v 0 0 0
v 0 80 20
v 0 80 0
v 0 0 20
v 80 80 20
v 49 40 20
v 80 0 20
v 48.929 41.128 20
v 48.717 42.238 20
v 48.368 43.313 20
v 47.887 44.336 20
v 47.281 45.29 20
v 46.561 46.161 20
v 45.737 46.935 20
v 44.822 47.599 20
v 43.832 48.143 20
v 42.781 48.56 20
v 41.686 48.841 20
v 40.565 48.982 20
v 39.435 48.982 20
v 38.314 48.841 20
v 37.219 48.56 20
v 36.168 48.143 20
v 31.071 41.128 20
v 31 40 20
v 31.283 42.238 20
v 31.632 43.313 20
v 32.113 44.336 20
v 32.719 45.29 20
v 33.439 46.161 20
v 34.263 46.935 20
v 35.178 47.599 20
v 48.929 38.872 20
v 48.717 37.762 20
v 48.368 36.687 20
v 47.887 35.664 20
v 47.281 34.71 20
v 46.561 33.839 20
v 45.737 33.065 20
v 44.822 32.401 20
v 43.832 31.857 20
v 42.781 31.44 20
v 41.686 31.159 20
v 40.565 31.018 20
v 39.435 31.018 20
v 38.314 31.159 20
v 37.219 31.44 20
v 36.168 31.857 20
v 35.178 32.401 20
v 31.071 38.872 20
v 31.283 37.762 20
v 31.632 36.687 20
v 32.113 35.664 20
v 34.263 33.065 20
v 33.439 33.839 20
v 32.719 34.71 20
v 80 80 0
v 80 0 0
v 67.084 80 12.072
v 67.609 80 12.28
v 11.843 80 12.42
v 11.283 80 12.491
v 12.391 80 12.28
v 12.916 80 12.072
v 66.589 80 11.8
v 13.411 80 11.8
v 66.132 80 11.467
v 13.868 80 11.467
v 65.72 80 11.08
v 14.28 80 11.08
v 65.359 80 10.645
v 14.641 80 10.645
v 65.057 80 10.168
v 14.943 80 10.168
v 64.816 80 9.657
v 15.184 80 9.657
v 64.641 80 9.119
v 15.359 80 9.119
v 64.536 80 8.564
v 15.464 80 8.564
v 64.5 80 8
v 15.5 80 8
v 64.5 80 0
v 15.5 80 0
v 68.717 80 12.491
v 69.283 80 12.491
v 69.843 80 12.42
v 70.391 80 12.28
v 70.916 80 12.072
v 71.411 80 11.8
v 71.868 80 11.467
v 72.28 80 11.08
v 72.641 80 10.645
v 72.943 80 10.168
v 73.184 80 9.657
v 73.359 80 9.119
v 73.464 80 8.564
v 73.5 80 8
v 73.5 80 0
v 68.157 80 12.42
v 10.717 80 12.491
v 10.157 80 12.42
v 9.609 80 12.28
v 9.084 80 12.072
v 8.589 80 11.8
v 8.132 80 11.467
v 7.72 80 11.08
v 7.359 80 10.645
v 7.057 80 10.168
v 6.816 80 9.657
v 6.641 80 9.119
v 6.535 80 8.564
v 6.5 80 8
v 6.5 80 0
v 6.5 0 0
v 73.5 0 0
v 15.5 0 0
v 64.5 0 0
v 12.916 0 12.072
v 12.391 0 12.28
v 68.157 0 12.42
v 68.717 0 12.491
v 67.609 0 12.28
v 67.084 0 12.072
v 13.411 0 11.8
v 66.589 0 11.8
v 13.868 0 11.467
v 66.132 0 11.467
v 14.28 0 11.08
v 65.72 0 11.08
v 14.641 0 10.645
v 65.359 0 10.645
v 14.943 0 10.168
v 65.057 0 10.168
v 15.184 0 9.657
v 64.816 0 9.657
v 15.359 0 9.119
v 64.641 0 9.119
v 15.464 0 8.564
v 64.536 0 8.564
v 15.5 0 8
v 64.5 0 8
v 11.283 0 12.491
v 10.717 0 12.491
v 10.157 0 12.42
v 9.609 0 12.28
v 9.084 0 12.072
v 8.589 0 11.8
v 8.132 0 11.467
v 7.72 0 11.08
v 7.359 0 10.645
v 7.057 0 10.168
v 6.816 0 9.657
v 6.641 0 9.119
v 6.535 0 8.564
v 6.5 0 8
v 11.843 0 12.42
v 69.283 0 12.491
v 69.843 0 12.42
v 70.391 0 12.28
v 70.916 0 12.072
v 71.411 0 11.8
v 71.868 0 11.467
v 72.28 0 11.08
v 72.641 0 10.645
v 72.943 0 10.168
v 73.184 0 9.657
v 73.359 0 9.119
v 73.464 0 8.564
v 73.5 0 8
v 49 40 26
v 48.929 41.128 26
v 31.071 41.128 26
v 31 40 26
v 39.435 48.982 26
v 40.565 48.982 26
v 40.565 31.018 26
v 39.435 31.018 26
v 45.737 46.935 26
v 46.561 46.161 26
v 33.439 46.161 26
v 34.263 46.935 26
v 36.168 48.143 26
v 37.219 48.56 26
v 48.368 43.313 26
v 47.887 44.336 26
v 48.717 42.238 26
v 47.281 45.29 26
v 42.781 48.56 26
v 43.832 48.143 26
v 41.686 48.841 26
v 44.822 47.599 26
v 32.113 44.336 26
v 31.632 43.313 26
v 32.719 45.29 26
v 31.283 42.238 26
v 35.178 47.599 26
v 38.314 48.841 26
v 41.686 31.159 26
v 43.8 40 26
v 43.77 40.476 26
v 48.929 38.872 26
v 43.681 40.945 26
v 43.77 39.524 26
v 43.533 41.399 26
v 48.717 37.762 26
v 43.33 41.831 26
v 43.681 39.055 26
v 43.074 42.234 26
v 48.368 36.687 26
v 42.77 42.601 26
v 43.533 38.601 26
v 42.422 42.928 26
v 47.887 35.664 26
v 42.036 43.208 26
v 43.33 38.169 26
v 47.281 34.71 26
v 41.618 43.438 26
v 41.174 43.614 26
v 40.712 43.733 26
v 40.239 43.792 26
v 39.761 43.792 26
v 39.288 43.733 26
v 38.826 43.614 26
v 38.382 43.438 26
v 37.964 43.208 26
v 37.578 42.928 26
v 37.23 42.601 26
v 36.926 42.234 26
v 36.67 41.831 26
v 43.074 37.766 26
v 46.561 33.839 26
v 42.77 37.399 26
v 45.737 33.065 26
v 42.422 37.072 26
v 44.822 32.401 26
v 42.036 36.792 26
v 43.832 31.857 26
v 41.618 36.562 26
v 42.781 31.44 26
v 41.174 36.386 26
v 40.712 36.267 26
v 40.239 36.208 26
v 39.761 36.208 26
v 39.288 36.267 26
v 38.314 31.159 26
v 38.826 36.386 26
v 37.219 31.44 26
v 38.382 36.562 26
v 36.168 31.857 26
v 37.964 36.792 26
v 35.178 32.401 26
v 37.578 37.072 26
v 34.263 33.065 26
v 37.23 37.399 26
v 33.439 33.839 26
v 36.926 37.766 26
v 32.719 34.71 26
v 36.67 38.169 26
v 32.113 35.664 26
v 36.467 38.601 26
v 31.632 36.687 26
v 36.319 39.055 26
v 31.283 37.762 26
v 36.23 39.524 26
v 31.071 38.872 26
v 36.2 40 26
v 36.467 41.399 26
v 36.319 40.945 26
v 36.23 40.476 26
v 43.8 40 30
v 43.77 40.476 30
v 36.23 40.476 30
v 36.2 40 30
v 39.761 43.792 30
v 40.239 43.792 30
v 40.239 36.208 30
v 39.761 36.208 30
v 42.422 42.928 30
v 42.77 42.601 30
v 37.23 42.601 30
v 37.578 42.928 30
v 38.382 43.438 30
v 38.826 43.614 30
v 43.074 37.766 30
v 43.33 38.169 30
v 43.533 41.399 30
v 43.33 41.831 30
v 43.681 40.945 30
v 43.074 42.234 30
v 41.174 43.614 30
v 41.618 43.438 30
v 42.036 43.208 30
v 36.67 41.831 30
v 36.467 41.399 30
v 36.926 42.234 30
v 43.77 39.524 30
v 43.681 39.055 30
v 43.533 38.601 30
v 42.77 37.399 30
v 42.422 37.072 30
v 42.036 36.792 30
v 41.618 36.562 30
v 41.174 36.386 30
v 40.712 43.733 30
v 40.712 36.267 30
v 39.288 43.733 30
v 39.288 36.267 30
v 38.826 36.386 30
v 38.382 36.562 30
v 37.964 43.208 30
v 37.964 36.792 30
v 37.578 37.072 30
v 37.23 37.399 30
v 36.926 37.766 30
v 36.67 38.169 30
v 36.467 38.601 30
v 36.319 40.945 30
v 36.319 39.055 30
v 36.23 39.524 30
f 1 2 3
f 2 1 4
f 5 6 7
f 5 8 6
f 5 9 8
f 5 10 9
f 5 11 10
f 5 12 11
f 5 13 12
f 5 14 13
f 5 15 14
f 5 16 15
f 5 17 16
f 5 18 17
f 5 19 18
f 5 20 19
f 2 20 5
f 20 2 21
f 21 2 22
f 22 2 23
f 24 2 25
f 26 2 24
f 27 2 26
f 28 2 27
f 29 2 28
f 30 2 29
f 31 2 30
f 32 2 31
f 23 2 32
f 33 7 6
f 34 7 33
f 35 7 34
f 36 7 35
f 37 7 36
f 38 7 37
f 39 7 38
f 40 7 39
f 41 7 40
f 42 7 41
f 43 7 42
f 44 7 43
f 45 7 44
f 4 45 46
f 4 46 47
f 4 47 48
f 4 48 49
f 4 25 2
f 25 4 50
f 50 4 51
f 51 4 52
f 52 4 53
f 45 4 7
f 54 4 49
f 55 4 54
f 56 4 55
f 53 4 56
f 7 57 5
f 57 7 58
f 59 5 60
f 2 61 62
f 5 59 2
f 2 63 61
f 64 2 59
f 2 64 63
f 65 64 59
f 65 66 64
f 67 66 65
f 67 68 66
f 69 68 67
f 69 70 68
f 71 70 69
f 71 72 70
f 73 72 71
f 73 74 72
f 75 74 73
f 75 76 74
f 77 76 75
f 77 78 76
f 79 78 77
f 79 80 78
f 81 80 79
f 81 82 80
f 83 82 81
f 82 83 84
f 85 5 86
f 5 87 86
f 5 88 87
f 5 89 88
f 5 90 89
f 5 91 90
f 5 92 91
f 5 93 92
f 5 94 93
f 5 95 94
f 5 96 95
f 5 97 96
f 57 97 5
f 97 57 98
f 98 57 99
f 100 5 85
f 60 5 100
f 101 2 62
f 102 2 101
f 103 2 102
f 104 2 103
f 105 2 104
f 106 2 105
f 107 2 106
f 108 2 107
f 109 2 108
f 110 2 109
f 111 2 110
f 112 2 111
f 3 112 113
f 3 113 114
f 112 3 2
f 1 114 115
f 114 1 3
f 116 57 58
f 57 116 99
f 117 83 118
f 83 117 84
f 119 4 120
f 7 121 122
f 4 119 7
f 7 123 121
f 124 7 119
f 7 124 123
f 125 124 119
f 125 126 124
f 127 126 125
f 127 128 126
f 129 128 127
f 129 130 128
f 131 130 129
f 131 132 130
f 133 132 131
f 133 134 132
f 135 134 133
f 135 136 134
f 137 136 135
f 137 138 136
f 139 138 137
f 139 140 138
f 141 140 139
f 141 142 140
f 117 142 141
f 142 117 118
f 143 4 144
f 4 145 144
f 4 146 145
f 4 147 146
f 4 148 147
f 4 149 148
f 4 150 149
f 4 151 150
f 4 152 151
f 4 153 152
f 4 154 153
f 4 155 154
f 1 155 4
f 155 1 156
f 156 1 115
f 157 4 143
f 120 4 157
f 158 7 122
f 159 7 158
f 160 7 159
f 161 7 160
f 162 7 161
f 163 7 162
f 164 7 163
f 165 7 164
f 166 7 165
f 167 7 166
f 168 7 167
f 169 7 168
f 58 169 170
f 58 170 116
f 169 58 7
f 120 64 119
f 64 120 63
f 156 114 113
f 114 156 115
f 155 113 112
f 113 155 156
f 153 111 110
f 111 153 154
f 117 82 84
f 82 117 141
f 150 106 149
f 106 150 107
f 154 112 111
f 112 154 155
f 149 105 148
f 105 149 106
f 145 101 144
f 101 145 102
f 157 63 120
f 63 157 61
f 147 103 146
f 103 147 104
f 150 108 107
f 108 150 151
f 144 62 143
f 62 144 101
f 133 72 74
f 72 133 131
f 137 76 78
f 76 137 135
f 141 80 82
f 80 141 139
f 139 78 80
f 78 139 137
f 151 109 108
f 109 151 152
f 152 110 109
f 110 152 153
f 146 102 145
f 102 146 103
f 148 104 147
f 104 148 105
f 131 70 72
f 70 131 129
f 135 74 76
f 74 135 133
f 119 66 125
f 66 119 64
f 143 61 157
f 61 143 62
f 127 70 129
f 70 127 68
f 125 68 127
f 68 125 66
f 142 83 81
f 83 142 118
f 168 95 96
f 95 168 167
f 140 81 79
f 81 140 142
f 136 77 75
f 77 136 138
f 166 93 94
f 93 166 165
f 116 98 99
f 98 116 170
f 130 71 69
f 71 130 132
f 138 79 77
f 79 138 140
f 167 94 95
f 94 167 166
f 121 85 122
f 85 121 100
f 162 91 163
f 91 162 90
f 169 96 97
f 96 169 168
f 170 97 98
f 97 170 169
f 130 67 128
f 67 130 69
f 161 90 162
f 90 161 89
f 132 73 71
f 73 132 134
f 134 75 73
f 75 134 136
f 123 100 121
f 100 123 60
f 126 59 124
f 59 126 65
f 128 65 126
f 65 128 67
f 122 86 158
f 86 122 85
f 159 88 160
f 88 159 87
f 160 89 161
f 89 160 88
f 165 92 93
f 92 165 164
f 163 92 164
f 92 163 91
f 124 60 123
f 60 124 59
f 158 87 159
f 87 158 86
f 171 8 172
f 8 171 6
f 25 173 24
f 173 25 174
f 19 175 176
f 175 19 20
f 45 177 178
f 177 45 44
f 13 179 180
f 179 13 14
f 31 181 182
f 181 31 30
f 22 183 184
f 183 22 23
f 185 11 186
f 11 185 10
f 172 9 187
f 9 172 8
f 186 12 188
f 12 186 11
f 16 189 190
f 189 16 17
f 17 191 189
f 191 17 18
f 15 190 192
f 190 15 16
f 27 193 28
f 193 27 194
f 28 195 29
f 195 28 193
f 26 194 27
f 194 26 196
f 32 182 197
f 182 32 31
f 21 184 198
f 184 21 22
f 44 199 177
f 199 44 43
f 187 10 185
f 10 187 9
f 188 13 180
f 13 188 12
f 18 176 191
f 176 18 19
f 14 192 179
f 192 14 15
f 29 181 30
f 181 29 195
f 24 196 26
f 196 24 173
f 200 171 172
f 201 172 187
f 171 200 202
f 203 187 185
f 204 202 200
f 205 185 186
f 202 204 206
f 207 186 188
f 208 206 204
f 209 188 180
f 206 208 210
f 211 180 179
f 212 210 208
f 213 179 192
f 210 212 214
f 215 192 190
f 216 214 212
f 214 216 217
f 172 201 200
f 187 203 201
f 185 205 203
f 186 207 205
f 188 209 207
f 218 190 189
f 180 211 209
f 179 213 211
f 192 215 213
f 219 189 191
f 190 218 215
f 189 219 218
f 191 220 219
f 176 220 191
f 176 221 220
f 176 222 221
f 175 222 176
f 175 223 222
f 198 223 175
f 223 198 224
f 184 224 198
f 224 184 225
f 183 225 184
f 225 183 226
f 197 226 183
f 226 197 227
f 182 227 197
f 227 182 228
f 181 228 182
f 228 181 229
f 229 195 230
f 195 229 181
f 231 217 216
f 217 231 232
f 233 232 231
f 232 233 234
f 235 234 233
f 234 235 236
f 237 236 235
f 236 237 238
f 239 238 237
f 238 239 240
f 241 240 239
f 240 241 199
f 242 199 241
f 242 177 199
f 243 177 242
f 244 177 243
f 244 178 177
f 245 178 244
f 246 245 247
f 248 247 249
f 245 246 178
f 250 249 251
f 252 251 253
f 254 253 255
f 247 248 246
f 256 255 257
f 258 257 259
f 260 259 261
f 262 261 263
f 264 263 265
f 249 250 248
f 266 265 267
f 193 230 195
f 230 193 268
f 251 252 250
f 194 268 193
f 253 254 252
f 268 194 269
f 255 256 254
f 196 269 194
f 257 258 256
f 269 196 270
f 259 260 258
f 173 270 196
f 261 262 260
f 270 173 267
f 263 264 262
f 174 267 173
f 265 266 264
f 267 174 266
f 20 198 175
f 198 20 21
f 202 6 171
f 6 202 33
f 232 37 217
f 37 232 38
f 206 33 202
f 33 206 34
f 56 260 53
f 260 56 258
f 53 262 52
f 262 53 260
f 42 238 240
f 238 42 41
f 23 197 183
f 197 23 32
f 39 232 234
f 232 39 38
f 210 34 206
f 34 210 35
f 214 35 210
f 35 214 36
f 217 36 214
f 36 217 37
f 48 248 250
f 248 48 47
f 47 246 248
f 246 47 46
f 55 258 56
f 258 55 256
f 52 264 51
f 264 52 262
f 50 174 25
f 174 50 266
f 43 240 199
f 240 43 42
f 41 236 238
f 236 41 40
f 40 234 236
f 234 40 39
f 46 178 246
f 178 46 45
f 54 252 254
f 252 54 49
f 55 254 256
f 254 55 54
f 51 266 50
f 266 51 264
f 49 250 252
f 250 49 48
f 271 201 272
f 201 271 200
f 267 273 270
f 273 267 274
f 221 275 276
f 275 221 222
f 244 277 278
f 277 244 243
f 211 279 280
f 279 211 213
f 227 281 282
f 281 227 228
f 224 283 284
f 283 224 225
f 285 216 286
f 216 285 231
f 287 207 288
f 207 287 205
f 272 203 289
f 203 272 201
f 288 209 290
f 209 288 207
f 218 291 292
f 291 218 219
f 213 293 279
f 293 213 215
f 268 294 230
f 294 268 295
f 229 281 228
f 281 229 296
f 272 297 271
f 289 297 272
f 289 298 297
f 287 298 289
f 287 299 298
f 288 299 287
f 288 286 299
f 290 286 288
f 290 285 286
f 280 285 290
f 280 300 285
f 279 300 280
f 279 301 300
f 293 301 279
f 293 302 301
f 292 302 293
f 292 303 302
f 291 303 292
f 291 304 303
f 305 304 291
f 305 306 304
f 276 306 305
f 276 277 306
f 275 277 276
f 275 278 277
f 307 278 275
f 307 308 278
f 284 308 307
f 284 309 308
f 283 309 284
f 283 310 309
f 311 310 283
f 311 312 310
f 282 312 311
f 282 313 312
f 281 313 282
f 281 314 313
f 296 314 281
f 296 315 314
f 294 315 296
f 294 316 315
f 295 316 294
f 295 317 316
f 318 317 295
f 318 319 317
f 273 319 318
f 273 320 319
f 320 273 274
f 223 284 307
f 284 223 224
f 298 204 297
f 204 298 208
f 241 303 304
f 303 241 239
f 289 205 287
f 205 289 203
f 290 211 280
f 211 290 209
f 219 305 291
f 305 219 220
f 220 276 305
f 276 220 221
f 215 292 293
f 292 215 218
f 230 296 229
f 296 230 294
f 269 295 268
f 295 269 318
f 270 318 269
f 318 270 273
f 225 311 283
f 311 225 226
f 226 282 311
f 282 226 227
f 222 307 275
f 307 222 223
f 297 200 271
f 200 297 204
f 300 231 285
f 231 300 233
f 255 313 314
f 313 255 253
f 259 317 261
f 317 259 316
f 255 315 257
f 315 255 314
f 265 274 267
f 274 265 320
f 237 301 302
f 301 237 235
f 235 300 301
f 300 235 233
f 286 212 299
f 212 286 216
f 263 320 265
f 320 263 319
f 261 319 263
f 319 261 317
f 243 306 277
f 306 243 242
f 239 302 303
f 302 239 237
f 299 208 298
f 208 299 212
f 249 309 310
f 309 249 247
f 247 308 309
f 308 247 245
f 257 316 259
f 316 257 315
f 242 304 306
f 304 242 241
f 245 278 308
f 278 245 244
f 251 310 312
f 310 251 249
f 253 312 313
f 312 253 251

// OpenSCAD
$fn = 50;

module Spool_Bearing_Base() {
	union() {
		// Base
		difference(){
			cube([80, 80, 20]);

			// Rod slot
			translate([11, 85, 8]) {
				hull() {
					rotate([90, 0 ,0]) {
						cylinder(h = 90, r = 4.5);
						translate([0, -20, 0]) {
							cylinder(h = 90, r = 4.5);
						}
					}
				}
			}
			
			// Rod slot
			translate([69, 85, 8]) {
				hull() {
					rotate([90, 0 ,0]) {
						cylinder(h = 90, r = 4.5);
						translate([0, -20, 0]) {
							cylinder(h = 90, r = 4.5);
						}
					}
				}
			}
		}

		// Vertical bearing
		translate([40, 40, 19]) {
			cylinder(h = 7, r = 9);
               
            translate([0, 0, 5]) {
                cylinder(h = 6, r = 3.8);
            }
		}
	}
}

Spool_Bearing_Base();
